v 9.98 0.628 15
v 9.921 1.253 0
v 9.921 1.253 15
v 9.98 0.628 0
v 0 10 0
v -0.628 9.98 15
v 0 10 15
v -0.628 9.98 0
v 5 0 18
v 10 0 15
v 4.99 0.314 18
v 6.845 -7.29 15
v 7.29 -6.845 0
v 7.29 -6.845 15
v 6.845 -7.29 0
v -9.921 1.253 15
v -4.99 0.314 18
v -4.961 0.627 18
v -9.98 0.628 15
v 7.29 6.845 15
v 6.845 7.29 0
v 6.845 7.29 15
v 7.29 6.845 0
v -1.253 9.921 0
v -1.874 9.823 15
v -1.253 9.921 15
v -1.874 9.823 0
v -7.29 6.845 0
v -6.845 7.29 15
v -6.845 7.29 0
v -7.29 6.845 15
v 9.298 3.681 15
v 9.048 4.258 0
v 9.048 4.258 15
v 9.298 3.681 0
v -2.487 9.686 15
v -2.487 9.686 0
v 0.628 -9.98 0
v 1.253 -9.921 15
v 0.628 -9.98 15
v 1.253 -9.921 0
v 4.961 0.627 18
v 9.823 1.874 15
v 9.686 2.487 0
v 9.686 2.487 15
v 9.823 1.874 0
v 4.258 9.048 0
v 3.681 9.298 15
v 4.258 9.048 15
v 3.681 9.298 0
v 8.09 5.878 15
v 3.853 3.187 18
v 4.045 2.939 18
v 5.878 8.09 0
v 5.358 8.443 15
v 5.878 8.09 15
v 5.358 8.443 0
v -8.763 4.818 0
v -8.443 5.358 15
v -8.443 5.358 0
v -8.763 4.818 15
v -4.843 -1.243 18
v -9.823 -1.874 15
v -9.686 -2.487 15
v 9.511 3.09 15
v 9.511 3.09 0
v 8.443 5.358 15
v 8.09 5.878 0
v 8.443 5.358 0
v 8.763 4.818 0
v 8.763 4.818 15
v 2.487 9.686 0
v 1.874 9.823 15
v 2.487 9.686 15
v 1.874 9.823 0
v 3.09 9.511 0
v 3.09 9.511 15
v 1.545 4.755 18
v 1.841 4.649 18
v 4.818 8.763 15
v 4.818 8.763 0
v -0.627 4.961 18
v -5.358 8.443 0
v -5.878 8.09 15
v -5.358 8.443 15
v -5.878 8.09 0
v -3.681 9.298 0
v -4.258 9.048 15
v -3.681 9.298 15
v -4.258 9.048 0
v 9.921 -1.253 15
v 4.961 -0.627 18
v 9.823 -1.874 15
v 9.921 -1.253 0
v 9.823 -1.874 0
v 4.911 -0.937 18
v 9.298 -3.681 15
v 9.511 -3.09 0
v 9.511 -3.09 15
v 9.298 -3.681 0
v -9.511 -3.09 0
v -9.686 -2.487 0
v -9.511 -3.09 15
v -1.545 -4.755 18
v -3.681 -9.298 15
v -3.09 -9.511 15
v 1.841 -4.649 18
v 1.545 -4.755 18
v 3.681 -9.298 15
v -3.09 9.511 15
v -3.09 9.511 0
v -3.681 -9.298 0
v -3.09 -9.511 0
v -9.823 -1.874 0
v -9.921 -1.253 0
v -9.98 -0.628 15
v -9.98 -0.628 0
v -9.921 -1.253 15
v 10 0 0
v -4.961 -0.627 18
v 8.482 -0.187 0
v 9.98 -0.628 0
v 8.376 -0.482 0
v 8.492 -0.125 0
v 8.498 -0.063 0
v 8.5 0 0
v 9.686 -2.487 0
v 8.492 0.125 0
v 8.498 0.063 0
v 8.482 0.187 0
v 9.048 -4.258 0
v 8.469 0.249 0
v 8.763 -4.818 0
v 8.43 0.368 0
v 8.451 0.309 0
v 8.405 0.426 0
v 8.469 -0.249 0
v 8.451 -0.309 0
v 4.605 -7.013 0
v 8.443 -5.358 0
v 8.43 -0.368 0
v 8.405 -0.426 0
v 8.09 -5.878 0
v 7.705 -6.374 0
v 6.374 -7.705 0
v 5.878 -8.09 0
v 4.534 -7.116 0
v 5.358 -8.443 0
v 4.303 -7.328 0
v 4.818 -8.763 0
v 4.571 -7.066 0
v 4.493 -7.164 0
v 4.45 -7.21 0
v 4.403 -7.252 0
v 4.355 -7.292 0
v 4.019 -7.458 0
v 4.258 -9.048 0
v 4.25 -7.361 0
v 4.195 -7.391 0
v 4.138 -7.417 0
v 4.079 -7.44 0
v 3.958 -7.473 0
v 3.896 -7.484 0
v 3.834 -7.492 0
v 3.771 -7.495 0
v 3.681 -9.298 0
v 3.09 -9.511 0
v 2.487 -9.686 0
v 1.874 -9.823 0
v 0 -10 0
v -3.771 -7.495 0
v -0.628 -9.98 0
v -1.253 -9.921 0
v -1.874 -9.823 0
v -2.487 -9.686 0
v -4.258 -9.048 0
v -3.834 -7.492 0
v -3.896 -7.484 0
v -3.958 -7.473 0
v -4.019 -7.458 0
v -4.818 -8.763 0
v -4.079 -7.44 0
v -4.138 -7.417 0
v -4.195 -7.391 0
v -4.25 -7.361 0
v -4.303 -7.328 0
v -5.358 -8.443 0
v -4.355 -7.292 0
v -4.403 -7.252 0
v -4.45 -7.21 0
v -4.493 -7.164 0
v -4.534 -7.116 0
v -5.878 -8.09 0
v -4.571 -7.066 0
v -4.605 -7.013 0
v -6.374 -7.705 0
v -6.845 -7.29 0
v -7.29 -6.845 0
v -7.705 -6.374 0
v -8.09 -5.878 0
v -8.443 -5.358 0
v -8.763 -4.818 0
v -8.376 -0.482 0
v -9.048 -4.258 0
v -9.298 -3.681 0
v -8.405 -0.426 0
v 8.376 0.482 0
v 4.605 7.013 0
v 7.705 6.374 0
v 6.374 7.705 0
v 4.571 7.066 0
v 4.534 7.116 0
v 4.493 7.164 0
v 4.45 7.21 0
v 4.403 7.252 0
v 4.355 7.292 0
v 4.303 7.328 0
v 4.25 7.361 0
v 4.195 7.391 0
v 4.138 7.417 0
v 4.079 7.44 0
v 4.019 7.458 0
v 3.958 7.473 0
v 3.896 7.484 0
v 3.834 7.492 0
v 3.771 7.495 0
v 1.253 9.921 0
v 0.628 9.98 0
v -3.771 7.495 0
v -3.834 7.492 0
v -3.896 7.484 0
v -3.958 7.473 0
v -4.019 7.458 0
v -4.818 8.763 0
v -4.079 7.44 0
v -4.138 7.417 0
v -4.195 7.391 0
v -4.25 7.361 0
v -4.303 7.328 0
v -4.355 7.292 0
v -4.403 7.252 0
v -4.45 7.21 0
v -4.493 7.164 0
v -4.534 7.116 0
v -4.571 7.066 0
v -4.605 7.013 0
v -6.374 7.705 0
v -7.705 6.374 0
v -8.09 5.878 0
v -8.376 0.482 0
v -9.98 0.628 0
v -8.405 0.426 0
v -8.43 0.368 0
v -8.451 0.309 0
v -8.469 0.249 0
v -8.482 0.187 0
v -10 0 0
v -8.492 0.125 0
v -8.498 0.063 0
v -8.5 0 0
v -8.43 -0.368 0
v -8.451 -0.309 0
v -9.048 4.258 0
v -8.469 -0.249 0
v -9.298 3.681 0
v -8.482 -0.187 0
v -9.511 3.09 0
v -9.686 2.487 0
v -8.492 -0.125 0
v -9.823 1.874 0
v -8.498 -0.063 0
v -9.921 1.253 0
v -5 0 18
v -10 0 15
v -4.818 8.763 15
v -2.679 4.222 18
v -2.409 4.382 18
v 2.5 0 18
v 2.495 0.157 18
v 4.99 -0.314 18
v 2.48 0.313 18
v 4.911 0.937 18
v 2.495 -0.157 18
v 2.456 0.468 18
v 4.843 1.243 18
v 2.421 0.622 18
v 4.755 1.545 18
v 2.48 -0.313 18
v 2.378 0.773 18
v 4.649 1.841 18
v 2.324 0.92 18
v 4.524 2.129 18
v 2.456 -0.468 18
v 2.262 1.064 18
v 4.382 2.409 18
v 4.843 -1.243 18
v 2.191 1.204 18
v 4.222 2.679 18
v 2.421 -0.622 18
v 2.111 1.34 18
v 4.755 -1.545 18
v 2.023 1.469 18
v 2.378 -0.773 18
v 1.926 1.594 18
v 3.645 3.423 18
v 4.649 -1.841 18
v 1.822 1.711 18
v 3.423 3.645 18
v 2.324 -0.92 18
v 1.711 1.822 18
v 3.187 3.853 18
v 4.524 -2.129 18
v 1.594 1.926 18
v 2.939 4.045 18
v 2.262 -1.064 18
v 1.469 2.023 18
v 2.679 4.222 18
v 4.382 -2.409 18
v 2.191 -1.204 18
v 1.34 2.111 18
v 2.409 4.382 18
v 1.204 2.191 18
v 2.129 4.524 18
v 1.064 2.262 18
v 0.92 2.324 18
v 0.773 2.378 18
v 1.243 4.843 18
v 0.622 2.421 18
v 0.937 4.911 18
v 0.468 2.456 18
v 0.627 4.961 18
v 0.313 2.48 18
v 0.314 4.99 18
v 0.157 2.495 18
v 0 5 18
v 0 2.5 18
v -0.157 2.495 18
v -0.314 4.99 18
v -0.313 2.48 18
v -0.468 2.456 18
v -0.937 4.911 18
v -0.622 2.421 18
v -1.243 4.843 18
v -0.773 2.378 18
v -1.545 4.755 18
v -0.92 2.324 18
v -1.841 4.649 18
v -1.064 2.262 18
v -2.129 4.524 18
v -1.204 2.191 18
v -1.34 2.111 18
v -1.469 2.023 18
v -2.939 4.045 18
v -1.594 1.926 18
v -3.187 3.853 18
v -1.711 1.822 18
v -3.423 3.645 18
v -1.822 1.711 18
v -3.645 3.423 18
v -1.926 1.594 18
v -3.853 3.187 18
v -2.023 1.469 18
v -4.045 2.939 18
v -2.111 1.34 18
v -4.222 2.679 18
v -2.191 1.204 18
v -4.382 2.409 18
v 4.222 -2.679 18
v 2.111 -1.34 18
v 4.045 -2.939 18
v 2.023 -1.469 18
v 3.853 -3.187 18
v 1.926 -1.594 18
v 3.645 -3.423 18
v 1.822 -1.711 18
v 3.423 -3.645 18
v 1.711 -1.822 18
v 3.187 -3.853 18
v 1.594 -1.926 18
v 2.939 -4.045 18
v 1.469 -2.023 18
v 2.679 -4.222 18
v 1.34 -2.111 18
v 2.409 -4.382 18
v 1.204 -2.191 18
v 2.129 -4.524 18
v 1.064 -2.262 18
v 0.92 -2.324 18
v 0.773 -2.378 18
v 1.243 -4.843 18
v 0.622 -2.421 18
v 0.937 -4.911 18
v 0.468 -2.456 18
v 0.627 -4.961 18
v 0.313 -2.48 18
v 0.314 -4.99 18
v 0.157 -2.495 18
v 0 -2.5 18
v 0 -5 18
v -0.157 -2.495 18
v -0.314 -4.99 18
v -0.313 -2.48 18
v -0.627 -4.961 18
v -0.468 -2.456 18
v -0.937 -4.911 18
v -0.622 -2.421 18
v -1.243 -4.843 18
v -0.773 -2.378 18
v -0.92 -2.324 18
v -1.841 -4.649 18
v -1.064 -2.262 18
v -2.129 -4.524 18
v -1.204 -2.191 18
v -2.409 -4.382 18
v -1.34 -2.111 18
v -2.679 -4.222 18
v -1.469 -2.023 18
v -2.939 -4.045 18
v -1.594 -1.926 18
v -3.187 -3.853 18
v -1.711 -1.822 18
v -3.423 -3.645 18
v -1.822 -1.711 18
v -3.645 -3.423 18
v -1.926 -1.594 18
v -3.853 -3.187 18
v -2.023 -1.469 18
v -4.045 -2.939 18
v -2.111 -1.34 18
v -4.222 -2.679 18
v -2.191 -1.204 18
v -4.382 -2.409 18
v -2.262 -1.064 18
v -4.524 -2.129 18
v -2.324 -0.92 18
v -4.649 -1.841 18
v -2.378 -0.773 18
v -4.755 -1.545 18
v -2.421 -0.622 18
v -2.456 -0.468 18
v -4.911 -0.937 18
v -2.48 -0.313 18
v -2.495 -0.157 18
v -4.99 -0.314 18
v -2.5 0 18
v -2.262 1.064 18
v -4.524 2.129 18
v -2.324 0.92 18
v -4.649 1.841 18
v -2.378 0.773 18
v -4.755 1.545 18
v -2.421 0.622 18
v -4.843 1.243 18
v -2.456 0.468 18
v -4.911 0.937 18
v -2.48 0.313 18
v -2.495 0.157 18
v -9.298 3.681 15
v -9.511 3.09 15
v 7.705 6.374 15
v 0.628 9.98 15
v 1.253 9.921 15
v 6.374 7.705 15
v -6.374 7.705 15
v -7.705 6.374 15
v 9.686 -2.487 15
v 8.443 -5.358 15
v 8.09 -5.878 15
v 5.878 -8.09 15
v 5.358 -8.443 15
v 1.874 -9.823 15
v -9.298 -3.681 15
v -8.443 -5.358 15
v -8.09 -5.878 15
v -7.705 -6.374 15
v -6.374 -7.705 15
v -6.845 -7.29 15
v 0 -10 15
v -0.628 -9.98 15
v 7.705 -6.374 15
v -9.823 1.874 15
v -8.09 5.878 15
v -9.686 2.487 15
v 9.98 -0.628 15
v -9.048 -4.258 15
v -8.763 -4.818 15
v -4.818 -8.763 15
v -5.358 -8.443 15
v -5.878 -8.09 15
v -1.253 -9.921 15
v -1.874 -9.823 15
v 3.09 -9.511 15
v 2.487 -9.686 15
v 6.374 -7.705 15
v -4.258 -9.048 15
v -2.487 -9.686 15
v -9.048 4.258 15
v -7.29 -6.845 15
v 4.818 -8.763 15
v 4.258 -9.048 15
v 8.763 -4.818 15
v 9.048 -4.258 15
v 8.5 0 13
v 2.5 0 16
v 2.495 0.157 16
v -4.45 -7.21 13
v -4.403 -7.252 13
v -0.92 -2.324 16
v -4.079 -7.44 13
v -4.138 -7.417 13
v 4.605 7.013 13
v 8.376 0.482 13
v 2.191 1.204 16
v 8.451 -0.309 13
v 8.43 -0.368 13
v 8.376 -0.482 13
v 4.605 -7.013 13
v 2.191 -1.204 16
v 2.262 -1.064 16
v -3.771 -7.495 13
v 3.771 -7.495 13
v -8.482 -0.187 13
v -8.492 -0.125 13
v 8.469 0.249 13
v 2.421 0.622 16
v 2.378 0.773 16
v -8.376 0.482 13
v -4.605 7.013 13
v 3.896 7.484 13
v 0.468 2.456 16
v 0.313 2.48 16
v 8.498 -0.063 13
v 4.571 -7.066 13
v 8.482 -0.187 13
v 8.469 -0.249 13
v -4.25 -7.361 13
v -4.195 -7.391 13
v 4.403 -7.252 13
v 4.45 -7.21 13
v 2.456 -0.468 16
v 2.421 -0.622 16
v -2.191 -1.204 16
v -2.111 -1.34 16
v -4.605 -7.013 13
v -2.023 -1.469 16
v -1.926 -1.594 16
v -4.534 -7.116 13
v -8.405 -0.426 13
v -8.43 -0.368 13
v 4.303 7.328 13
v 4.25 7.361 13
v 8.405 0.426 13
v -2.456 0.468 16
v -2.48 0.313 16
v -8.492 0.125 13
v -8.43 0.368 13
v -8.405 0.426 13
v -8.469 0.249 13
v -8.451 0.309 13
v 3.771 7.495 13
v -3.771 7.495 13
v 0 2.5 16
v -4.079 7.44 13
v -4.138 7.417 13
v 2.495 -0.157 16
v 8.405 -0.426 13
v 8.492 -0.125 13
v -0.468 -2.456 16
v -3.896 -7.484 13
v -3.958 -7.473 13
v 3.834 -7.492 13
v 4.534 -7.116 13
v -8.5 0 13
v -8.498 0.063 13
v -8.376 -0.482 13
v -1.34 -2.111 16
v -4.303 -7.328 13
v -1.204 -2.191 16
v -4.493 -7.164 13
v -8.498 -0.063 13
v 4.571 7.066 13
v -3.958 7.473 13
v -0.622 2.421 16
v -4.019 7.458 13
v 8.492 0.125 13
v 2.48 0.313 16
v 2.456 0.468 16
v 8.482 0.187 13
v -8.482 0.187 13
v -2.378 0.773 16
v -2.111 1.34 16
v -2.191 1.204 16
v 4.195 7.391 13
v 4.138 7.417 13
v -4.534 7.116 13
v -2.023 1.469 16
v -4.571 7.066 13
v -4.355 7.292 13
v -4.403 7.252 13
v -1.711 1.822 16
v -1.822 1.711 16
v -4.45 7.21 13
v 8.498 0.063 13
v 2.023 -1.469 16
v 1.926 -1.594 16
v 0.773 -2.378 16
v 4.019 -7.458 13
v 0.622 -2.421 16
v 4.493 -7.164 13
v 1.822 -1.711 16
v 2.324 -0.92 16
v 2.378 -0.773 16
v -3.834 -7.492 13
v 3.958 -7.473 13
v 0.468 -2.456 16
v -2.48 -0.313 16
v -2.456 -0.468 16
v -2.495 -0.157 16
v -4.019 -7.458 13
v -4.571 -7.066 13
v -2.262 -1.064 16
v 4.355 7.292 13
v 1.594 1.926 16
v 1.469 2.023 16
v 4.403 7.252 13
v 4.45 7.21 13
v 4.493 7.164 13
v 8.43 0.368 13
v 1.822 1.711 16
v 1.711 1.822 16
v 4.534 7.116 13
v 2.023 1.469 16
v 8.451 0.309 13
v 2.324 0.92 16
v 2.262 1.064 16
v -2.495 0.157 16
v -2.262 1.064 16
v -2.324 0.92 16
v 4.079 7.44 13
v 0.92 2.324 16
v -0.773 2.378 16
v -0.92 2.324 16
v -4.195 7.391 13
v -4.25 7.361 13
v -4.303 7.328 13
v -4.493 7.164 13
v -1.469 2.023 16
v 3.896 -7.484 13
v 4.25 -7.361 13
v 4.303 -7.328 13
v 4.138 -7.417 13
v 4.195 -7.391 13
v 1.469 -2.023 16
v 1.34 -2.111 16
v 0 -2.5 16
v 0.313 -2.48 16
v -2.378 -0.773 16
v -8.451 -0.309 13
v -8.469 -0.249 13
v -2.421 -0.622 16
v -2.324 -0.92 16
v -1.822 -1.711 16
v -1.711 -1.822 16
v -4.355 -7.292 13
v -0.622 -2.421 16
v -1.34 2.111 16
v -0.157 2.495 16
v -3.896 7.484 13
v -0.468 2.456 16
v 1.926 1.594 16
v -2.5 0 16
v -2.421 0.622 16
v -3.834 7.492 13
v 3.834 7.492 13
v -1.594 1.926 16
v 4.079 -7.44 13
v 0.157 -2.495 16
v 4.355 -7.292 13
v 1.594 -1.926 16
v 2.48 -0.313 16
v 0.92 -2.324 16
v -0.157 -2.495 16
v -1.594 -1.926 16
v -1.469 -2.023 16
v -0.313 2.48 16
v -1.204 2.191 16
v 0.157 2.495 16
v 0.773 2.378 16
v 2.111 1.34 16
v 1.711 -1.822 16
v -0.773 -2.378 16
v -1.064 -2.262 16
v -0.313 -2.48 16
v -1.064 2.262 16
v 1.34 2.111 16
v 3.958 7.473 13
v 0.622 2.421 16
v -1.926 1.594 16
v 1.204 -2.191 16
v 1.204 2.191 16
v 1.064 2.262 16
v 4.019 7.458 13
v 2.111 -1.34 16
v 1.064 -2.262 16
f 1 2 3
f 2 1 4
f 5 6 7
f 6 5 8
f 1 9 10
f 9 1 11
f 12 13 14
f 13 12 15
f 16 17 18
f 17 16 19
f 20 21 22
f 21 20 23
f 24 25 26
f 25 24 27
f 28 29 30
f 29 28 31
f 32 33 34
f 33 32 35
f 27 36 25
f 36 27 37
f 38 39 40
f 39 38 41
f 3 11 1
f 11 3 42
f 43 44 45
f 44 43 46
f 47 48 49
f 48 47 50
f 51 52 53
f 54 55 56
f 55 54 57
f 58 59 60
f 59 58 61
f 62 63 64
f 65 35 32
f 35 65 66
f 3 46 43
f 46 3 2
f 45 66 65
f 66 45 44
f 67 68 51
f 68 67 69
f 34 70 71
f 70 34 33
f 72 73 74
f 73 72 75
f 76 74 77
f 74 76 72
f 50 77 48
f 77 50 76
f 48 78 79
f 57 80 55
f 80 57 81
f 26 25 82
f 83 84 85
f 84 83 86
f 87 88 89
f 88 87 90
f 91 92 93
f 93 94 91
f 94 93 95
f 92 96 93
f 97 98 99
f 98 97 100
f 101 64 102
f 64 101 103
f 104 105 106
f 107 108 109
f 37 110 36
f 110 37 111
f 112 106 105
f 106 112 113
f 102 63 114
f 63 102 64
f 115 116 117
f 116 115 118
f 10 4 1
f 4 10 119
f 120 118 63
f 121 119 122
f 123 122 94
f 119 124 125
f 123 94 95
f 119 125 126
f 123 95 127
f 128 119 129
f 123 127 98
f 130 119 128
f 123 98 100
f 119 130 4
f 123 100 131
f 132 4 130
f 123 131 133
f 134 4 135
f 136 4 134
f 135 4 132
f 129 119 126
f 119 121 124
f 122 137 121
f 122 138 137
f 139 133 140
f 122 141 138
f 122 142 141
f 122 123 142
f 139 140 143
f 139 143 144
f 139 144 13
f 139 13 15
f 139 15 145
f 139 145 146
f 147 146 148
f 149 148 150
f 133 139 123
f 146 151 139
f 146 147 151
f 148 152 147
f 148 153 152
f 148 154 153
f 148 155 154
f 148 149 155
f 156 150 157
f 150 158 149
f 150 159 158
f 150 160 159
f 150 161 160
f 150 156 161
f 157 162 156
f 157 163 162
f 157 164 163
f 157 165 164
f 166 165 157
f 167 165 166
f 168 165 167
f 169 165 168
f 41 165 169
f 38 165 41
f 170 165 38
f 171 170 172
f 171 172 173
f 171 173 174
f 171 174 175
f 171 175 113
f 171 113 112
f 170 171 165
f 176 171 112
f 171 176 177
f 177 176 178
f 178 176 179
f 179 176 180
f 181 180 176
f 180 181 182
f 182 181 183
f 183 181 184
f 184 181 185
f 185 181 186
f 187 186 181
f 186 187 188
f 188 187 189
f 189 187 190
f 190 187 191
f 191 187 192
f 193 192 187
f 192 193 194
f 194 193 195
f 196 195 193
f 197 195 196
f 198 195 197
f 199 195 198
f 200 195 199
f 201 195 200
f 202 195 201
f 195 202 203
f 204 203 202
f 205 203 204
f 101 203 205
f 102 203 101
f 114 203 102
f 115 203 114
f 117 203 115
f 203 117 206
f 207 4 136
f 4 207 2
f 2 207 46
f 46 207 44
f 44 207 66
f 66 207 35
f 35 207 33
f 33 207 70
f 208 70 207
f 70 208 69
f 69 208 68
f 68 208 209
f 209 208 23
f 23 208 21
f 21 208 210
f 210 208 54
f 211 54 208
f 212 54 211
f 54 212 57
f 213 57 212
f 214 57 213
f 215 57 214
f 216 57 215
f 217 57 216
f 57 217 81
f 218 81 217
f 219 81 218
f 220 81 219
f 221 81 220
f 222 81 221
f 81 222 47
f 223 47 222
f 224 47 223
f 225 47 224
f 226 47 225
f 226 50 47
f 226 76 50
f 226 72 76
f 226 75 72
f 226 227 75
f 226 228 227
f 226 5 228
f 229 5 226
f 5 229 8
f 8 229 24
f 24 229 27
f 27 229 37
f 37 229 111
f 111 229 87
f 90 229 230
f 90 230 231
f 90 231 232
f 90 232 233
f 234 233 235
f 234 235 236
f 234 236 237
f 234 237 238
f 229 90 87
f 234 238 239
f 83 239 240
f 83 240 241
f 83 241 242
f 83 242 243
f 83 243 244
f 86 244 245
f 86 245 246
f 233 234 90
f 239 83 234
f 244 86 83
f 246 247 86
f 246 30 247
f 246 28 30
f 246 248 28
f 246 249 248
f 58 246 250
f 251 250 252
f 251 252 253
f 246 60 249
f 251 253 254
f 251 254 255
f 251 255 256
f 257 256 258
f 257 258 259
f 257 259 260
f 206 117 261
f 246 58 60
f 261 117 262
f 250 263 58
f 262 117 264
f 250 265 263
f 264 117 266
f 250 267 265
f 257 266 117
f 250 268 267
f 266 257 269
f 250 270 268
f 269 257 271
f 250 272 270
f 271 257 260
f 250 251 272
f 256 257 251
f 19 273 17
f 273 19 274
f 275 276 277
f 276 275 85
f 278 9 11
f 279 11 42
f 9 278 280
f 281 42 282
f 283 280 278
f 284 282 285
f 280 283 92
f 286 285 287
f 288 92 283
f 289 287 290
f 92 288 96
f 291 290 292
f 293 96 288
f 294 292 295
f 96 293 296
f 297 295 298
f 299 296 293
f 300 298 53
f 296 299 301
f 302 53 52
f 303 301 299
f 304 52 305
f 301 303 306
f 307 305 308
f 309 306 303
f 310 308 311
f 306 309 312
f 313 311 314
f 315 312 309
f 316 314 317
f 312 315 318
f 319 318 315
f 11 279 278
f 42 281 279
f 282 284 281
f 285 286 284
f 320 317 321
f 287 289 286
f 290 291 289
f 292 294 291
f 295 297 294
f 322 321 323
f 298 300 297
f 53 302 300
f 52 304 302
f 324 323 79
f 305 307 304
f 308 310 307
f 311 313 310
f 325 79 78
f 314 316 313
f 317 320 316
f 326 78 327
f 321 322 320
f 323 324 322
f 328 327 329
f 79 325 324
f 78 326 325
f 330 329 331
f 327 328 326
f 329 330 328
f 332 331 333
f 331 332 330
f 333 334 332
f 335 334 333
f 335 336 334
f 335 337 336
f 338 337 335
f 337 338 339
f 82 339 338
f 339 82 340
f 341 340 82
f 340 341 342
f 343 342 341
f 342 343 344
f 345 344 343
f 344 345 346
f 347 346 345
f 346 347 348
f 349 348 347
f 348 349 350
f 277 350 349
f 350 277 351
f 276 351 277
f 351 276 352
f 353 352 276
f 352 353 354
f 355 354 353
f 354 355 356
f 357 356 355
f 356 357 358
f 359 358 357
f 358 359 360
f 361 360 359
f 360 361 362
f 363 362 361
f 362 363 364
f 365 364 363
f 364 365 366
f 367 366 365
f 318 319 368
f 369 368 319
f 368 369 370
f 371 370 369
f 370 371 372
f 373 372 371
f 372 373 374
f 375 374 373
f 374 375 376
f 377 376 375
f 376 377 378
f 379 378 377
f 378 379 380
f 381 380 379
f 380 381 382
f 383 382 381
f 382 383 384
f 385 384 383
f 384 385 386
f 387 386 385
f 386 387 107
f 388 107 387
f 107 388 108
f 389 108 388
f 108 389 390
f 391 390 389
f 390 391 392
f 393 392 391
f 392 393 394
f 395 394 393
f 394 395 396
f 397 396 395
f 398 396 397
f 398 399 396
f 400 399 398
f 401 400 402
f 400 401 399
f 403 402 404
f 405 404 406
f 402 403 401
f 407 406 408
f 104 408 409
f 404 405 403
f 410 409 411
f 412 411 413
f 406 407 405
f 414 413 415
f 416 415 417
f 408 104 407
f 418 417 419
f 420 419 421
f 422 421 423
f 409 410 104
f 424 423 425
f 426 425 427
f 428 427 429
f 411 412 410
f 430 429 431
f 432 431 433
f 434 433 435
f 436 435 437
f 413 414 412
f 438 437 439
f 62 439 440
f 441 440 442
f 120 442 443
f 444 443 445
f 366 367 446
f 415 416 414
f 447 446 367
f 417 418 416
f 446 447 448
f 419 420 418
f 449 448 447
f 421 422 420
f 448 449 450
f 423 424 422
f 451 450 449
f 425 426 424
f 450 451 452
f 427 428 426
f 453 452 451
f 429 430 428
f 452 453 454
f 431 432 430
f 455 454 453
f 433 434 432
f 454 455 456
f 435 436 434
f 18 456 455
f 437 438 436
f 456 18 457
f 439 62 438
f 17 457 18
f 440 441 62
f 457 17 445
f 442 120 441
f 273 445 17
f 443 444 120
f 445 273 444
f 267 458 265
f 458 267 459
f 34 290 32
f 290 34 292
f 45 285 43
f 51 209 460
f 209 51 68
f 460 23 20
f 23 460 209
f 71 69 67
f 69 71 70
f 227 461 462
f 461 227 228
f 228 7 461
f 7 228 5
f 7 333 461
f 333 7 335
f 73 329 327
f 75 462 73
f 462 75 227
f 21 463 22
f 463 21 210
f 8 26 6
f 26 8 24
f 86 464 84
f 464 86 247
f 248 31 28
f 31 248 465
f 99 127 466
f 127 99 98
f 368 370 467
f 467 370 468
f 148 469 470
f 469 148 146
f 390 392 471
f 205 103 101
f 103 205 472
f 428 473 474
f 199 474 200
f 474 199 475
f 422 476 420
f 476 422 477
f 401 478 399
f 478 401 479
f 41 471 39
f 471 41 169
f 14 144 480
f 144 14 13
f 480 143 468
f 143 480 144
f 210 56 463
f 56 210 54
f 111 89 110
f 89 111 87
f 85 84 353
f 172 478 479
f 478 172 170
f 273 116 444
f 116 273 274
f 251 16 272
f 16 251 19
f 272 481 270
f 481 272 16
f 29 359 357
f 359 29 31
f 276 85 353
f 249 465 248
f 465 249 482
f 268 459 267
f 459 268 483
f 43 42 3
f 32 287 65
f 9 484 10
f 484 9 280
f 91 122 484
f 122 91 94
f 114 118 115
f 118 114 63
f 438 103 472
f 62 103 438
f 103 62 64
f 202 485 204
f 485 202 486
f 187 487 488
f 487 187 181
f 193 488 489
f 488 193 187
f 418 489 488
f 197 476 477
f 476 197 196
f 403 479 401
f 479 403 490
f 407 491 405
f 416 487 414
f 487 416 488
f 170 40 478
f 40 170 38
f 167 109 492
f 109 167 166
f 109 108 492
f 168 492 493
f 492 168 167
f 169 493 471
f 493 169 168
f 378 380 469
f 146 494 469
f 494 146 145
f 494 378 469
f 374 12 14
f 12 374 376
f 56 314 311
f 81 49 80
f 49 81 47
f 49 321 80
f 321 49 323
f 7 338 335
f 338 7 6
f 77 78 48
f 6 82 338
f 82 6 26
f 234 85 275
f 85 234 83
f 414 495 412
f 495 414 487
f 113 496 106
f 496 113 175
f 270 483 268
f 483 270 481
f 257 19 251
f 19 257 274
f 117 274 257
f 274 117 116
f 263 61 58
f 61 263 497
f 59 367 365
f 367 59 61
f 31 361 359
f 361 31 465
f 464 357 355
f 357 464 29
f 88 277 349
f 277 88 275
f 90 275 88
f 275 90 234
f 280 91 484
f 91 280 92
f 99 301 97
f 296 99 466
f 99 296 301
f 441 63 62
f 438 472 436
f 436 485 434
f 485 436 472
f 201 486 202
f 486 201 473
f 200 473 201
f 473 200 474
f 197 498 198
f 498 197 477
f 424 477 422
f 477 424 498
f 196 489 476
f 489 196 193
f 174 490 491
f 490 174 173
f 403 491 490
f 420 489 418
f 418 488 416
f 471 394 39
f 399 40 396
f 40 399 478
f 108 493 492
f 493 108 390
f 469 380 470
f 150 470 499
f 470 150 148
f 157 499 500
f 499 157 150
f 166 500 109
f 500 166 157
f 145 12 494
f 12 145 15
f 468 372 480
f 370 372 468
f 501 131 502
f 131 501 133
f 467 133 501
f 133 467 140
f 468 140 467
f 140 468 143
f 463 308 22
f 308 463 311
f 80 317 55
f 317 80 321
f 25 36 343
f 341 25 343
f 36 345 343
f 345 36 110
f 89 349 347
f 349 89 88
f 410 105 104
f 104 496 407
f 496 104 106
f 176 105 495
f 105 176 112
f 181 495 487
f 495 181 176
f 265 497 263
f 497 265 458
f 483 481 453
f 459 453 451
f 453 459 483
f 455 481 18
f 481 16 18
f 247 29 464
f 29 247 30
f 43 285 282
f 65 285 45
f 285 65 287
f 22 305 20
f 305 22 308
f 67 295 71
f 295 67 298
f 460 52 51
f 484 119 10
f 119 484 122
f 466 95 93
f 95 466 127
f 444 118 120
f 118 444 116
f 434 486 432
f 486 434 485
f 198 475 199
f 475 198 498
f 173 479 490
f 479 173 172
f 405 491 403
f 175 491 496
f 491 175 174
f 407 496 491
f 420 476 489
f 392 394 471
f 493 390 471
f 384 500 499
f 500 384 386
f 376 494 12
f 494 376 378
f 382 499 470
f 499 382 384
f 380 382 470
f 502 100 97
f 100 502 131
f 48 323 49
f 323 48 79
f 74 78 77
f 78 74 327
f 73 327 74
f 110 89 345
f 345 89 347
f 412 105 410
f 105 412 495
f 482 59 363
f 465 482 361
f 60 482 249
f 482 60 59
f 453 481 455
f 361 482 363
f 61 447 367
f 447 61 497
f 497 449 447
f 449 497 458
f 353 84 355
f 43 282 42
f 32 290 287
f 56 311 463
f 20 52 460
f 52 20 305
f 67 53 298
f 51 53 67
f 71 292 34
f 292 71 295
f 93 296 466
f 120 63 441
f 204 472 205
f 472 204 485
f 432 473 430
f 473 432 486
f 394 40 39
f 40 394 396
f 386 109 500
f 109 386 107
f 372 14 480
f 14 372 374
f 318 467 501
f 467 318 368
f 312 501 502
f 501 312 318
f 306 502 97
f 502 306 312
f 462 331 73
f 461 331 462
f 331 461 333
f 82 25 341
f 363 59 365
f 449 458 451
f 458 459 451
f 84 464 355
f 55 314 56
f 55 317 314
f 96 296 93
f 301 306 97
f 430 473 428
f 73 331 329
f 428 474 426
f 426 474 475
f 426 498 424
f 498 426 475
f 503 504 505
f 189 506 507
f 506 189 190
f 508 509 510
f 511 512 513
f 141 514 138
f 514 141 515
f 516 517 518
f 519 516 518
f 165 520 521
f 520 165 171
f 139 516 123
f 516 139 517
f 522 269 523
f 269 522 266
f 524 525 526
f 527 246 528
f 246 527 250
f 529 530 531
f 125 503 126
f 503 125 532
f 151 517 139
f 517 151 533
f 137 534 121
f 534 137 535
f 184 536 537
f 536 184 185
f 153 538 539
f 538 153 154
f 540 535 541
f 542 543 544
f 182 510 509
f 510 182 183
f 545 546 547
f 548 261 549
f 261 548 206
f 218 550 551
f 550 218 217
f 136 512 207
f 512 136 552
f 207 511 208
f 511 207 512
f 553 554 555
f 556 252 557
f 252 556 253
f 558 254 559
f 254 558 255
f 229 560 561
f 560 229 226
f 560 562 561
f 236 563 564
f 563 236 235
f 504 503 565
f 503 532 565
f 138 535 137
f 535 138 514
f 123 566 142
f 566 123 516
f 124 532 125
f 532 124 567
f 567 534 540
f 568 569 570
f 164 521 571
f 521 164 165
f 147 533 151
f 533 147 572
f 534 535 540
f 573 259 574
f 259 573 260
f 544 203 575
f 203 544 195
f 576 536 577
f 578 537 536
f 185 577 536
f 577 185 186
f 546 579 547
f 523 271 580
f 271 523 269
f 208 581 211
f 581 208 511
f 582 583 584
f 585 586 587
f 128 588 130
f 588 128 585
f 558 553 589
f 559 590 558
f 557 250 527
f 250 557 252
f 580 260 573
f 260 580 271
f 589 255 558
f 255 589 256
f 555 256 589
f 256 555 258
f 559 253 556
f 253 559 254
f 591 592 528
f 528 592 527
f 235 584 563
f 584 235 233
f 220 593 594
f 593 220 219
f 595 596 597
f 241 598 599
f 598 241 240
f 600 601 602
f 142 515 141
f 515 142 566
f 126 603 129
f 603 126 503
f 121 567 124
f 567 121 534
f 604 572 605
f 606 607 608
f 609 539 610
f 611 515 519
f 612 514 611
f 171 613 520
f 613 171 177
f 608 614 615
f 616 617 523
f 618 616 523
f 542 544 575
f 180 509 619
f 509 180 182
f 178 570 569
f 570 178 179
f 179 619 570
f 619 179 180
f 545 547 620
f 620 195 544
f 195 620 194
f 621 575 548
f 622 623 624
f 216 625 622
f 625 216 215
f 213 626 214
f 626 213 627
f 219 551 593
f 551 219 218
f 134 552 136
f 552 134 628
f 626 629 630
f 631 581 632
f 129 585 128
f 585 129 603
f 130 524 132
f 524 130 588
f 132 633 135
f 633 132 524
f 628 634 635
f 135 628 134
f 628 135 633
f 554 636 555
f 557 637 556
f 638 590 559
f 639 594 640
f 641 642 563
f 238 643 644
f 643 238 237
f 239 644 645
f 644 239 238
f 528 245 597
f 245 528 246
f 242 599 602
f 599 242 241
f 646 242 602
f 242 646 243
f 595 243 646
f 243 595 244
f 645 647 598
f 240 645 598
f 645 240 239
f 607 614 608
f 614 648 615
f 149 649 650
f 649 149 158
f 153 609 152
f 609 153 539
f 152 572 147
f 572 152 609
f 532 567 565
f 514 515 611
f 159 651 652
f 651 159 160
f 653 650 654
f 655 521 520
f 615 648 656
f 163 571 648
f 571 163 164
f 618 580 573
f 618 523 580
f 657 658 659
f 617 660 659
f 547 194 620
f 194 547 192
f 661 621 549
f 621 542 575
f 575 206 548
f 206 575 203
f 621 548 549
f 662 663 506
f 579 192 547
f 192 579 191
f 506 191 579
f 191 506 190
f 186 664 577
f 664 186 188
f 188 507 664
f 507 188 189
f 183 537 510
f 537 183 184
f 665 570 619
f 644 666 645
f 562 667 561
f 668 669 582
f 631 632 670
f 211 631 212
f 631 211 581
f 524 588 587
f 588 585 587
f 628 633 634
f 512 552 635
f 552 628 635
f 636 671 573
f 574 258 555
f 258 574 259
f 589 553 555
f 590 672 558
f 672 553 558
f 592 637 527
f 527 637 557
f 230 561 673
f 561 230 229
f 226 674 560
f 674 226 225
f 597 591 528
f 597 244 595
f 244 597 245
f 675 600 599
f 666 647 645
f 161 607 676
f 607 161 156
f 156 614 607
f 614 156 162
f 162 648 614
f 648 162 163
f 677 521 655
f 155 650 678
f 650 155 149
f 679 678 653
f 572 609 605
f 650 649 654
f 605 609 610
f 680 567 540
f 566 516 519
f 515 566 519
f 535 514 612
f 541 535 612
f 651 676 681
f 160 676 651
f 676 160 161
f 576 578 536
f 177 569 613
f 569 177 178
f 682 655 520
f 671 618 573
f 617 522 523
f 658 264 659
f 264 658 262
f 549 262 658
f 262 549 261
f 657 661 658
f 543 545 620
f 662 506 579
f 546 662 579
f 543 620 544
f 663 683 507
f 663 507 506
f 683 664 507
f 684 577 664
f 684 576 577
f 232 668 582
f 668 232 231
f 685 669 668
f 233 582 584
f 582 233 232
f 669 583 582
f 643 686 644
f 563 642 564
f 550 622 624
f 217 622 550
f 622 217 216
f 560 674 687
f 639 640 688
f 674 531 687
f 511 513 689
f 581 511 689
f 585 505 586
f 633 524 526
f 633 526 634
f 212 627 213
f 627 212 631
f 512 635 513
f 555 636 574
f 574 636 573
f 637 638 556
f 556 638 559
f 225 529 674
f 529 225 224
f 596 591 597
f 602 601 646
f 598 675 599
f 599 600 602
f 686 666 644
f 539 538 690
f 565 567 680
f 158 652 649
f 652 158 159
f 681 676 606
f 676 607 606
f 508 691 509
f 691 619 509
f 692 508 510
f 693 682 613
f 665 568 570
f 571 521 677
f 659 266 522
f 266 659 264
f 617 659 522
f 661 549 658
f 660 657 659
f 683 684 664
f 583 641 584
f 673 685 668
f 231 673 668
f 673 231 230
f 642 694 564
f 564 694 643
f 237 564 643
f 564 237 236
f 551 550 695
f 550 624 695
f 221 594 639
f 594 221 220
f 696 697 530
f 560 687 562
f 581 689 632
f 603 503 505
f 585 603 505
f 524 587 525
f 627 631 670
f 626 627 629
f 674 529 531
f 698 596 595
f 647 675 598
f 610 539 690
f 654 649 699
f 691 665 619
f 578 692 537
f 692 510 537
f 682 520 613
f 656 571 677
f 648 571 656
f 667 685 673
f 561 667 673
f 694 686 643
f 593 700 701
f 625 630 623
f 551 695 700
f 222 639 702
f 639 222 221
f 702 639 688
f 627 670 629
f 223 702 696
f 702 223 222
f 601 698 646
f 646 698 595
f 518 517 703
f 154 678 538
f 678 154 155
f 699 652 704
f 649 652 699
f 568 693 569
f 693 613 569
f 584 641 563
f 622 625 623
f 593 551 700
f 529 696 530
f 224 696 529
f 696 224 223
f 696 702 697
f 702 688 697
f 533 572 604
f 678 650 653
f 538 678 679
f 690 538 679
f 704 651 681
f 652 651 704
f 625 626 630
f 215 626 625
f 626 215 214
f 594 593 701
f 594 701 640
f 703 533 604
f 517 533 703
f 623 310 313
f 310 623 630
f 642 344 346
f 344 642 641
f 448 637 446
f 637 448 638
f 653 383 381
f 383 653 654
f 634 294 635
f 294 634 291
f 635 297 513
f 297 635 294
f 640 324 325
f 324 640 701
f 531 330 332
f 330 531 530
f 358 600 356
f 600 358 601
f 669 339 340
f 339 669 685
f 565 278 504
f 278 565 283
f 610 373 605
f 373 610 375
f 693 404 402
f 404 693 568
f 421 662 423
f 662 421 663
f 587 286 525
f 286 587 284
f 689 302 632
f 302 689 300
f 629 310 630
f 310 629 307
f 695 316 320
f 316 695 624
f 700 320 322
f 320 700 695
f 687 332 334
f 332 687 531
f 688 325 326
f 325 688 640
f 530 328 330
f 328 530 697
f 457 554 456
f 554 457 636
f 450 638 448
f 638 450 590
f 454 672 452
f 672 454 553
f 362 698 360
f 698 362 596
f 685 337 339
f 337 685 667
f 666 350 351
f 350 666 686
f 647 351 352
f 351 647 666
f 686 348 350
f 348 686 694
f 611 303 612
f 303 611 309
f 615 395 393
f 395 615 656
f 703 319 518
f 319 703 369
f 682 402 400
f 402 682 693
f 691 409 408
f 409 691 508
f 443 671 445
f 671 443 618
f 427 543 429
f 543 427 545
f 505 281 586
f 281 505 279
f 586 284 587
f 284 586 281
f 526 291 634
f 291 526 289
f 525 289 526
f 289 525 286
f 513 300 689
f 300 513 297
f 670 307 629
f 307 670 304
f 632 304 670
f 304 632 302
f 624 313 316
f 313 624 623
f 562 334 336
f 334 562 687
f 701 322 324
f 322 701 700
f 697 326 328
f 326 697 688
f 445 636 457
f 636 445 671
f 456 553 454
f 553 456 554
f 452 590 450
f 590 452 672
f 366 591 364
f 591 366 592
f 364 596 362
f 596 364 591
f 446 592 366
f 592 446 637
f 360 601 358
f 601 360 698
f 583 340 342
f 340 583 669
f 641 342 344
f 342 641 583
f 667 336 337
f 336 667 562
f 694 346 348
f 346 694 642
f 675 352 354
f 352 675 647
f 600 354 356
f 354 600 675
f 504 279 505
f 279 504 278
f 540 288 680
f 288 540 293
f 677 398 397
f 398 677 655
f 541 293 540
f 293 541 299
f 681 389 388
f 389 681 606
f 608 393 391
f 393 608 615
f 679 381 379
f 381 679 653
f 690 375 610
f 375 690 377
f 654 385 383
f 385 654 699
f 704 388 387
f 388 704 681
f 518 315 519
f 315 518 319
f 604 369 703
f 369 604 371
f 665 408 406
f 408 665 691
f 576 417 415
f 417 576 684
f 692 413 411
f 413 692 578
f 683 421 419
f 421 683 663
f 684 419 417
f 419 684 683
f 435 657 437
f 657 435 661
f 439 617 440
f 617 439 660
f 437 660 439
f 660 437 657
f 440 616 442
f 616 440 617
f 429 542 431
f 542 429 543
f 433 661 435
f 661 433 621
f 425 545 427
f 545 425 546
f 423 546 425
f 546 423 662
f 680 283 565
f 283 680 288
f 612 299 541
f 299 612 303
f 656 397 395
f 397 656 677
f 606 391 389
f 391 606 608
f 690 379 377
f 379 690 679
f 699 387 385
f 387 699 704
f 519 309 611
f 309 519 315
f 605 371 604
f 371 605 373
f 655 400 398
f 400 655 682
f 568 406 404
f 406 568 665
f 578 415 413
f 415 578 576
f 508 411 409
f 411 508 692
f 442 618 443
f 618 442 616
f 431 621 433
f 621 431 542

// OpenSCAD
$fn=100;

difference() {
    hull() {
        cylinder(d=20,h=15);
        translate([0,0,15]) cylinder(d=10, h=3);
    }
    translate([0,0,-2]) bolt(17,15);
    translate([0,0,10]) cylinder(d=5,h=10);
}

module bolt(w=17, h=15, cr=1) {
    hull() {
        radius = w/2 - cr;
        cp = [radius, 0, 0];
        translate(cp) cylinder(r=cr, h=h);
        rotate([0,0,60]) translate(cp) cylinder(r=cr, h=h);
        rotate([0,0,120]) translate(cp) cylinder(r=cr, h=h);
        rotate([0,0,180]) translate(cp) cylinder(r=cr, h=h);
        rotate([0,0,240]) translate(cp) cylinder(r=cr, h=h);
        rotate([0,0,300]) translate(cp) cylinder(r=cr, h=h);
        translate([0,0,h]) cylinder(d=5,h=3);
    }
}
